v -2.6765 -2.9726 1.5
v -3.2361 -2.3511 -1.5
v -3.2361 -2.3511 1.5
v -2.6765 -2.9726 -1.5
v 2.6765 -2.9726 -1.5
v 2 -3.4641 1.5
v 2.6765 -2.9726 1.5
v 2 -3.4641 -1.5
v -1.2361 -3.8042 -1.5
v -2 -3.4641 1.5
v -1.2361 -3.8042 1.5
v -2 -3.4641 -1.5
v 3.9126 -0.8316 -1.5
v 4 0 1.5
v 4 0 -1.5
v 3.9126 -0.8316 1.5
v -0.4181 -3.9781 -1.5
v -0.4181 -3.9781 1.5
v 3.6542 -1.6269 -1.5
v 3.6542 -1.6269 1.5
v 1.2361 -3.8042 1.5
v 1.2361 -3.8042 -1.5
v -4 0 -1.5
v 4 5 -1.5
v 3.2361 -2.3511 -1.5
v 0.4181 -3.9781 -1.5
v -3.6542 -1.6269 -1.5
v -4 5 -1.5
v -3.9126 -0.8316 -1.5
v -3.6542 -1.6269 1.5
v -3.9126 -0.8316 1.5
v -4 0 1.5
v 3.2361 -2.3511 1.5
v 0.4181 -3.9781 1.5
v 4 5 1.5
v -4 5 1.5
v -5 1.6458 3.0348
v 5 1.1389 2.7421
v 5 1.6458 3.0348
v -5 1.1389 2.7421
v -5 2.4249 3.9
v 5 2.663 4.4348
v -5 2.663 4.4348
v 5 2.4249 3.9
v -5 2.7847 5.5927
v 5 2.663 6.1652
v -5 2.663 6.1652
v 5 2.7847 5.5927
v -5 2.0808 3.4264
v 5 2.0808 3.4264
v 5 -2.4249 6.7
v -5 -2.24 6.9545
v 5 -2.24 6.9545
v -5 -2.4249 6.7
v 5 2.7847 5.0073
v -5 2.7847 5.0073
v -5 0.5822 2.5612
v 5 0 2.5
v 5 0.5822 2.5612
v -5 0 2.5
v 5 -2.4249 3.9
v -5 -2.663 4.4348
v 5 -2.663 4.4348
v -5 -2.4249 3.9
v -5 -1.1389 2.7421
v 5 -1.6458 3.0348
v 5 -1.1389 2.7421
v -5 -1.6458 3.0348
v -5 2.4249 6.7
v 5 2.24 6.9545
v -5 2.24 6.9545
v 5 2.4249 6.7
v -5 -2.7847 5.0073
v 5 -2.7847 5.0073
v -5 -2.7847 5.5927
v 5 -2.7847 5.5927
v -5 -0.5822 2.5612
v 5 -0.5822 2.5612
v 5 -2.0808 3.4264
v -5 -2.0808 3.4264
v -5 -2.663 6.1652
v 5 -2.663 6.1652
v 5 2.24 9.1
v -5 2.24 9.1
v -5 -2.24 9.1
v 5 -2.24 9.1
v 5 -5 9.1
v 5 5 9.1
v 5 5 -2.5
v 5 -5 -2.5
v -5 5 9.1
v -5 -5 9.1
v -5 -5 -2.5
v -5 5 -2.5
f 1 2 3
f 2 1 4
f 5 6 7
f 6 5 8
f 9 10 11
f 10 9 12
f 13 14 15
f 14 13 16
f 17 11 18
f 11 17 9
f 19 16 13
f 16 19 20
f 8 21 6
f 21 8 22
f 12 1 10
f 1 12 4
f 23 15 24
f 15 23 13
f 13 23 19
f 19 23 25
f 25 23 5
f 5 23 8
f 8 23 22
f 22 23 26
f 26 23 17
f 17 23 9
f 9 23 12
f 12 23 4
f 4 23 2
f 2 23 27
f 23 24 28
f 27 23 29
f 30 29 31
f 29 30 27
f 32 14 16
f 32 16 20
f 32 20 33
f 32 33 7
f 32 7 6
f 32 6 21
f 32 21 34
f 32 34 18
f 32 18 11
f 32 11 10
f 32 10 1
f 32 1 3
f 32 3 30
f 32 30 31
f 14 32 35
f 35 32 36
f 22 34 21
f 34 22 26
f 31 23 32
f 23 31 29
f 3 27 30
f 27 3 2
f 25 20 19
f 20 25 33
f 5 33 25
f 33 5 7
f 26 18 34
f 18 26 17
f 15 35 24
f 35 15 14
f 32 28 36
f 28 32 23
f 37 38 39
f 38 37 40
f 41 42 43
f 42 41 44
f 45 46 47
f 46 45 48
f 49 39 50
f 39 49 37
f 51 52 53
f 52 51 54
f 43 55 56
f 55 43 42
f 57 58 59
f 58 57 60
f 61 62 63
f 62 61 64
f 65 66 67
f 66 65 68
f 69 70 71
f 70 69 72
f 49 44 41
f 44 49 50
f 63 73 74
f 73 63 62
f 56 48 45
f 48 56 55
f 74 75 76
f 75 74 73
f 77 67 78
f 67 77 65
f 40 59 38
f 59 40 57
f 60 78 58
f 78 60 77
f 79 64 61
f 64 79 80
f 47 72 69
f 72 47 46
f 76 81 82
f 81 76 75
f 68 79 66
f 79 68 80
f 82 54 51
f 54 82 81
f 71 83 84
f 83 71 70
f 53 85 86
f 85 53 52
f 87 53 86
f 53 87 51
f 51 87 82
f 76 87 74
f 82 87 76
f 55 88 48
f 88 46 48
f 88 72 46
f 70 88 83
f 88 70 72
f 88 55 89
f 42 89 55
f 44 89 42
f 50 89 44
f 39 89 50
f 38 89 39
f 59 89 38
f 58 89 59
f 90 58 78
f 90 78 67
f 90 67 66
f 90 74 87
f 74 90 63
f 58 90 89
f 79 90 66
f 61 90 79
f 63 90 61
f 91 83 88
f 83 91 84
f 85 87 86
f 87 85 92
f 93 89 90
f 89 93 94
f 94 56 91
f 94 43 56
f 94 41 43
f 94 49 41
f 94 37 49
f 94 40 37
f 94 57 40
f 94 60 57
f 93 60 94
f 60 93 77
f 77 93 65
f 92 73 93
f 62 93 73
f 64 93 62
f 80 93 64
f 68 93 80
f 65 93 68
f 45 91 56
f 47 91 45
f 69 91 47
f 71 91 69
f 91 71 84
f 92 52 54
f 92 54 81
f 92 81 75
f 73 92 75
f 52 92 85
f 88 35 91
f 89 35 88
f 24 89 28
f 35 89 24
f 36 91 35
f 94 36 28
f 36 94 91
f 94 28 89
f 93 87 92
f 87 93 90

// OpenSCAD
// file: ../lib/extrude_directional.scad
/*
Copyright (C) Saeed Gholami Shahbandi. All rights reserved.
Author: Saeed Gholami Shahbandi (saeed.gh.sh@gmail.com)

This file is part of Arrangement Library.
The of Arrangement Library is free software: you can redistribute it and/or
modify it under the terms of the GNU Lesser General Public License as published
by the Free Software Foundation, either version 3 of the License,
or (at your option) any later version.

This program is distributed in the hope that it will be useful, but WITHOUT ANY
WARRANTY; without even the implied warranty of MERCHANTABILITY or FITNESS FOR A
PARTICULAR PURPOSE. See the GNU Lesser General Public License for more details.

You should have received a copy of the GNU Lesser General Public License along
with this program. If not, see <http://www.gnu.org/licenses/>
*/
tol = 0.01;

// Extrudes the shadow of the object projected at yz plan
module extrude_along_x(length=0)
{
    union(){
        // original object
        children();
        
        // extrusion of the object
        translate([max(0, length), 0, 0])
        rotate([0, -90, 0])
        linear_extrude(height=abs(length), center=false)
        projection()
        rotate([0, 90, 0])
        children();
    }    
}

// Extrudes the shadow of the object projected at zx plan
module extrude_along_y(length=0)
{
    union(){
        // original object
        children();
        
        // extrusion of the object
        rotate([-sign(length) * 90, 0, 0])
        linear_extrude(height=abs(length), center=false)
        projection()
        rotate([sign(length) * 90, 0, 0])
        children();
    }    
}

// Extrudes the shadow of the object projected at xy plan
module extrude_along_z(length=0)
{
    union(){
        // original object
        children();
        
        // extrusion of the object
        translate([0, 0, min(0, length)])
        linear_extrude(height=abs(length), center=false)
        projection()
        children();
    }    
}

// examples
module toy_example(size=5)
{
    union(){
        cube(2*size, true);

        translate([size, 0, 0])
        sphere(size);
        translate([-size, 0, 0])
        sphere(size);
        
        translate([0, size, 0])
        sphere(size);
        translate([0, -size, 0])
        sphere(size);
        
        translate([0, 0, size])
        sphere(size);
        translate([0, 0, -size])
        sphere(size);
    }
}


%extrude_along_x(length=20)
translate([0, 20, 0])
toy_example(size=5);

%extrude_along_y(length=20)
translate([0, 0, 20])
toy_example(size=5);

%extrude_along_z(length=20)
translate([20, 0, 0])
toy_example(size=5);
// main file
/*
Copyright (C) Saeed Gholami Shahbandi. All rights reserved.
Author: Saeed Gholami Shahbandi (saeed.gh.sh@gmail.com)

This file is part of Arrangement Library.
The of Arrangement Library is free software: you can redistribute it and/or
modify it under the terms of the GNU Lesser General Public License as published
by the Free Software Foundation, either version 3 of the License,
or (at your option) any later version.

This program is distributed in the hope that it will be useful, but WITHOUT ANY
WARRANTY; without even the implied warranty of MERCHANTABILITY or FITNESS FOR A
PARTICULAR PURPOSE. See the GNU Lesser General Public License for more details.

You should have received a copy of the GNU Lesser General Public License along
with this program. If not, see <http://www.gnu.org/licenses/>
*/

use <../lib/extrude_directional.scad>

tol = 0.02;

magnet_diameter = 8.0;
magnet_height = 3.0;
shaft_diameter = 5.6;
thickness = 1.0;

box_x = magnet_diameter + 2 * thickness;
box_y = box_x;
box_z = magnet_height + shaft_diameter + 3 * thickness;


module magnet()
{
    cylinder(h=magnet_height, d=magnet_diameter, $fn= 30, center=true);
}


module shaft()
{
  color("Black", 1.0)
    translate([0, 0, shaft_diameter/2 + magnet_height/2 + thickness])
    rotate([0, 90, 0])
    cylinder(h=20, d=shaft_diameter, $fn= 30, center=true);
}

module shaft_gap()
{
  color("Black", 1.0)
    translate([0, 0, shaft_diameter + magnet_height/2 + thickness])
    cube([20, shaft_diameter * 0.8, shaft_diameter], center=true);
}

difference(){
  color("Blue", 1.0)
    translate([0, 0, box_z/2 - (magnet_height/2 + thickness)])
    cube([box_x, box_y, box_z], center=true);

  
  union(){
    shaft();
    shaft_gap();
    
    extrude_along_y(length=1.1*box_x/2)
      magnet();
  }
}
